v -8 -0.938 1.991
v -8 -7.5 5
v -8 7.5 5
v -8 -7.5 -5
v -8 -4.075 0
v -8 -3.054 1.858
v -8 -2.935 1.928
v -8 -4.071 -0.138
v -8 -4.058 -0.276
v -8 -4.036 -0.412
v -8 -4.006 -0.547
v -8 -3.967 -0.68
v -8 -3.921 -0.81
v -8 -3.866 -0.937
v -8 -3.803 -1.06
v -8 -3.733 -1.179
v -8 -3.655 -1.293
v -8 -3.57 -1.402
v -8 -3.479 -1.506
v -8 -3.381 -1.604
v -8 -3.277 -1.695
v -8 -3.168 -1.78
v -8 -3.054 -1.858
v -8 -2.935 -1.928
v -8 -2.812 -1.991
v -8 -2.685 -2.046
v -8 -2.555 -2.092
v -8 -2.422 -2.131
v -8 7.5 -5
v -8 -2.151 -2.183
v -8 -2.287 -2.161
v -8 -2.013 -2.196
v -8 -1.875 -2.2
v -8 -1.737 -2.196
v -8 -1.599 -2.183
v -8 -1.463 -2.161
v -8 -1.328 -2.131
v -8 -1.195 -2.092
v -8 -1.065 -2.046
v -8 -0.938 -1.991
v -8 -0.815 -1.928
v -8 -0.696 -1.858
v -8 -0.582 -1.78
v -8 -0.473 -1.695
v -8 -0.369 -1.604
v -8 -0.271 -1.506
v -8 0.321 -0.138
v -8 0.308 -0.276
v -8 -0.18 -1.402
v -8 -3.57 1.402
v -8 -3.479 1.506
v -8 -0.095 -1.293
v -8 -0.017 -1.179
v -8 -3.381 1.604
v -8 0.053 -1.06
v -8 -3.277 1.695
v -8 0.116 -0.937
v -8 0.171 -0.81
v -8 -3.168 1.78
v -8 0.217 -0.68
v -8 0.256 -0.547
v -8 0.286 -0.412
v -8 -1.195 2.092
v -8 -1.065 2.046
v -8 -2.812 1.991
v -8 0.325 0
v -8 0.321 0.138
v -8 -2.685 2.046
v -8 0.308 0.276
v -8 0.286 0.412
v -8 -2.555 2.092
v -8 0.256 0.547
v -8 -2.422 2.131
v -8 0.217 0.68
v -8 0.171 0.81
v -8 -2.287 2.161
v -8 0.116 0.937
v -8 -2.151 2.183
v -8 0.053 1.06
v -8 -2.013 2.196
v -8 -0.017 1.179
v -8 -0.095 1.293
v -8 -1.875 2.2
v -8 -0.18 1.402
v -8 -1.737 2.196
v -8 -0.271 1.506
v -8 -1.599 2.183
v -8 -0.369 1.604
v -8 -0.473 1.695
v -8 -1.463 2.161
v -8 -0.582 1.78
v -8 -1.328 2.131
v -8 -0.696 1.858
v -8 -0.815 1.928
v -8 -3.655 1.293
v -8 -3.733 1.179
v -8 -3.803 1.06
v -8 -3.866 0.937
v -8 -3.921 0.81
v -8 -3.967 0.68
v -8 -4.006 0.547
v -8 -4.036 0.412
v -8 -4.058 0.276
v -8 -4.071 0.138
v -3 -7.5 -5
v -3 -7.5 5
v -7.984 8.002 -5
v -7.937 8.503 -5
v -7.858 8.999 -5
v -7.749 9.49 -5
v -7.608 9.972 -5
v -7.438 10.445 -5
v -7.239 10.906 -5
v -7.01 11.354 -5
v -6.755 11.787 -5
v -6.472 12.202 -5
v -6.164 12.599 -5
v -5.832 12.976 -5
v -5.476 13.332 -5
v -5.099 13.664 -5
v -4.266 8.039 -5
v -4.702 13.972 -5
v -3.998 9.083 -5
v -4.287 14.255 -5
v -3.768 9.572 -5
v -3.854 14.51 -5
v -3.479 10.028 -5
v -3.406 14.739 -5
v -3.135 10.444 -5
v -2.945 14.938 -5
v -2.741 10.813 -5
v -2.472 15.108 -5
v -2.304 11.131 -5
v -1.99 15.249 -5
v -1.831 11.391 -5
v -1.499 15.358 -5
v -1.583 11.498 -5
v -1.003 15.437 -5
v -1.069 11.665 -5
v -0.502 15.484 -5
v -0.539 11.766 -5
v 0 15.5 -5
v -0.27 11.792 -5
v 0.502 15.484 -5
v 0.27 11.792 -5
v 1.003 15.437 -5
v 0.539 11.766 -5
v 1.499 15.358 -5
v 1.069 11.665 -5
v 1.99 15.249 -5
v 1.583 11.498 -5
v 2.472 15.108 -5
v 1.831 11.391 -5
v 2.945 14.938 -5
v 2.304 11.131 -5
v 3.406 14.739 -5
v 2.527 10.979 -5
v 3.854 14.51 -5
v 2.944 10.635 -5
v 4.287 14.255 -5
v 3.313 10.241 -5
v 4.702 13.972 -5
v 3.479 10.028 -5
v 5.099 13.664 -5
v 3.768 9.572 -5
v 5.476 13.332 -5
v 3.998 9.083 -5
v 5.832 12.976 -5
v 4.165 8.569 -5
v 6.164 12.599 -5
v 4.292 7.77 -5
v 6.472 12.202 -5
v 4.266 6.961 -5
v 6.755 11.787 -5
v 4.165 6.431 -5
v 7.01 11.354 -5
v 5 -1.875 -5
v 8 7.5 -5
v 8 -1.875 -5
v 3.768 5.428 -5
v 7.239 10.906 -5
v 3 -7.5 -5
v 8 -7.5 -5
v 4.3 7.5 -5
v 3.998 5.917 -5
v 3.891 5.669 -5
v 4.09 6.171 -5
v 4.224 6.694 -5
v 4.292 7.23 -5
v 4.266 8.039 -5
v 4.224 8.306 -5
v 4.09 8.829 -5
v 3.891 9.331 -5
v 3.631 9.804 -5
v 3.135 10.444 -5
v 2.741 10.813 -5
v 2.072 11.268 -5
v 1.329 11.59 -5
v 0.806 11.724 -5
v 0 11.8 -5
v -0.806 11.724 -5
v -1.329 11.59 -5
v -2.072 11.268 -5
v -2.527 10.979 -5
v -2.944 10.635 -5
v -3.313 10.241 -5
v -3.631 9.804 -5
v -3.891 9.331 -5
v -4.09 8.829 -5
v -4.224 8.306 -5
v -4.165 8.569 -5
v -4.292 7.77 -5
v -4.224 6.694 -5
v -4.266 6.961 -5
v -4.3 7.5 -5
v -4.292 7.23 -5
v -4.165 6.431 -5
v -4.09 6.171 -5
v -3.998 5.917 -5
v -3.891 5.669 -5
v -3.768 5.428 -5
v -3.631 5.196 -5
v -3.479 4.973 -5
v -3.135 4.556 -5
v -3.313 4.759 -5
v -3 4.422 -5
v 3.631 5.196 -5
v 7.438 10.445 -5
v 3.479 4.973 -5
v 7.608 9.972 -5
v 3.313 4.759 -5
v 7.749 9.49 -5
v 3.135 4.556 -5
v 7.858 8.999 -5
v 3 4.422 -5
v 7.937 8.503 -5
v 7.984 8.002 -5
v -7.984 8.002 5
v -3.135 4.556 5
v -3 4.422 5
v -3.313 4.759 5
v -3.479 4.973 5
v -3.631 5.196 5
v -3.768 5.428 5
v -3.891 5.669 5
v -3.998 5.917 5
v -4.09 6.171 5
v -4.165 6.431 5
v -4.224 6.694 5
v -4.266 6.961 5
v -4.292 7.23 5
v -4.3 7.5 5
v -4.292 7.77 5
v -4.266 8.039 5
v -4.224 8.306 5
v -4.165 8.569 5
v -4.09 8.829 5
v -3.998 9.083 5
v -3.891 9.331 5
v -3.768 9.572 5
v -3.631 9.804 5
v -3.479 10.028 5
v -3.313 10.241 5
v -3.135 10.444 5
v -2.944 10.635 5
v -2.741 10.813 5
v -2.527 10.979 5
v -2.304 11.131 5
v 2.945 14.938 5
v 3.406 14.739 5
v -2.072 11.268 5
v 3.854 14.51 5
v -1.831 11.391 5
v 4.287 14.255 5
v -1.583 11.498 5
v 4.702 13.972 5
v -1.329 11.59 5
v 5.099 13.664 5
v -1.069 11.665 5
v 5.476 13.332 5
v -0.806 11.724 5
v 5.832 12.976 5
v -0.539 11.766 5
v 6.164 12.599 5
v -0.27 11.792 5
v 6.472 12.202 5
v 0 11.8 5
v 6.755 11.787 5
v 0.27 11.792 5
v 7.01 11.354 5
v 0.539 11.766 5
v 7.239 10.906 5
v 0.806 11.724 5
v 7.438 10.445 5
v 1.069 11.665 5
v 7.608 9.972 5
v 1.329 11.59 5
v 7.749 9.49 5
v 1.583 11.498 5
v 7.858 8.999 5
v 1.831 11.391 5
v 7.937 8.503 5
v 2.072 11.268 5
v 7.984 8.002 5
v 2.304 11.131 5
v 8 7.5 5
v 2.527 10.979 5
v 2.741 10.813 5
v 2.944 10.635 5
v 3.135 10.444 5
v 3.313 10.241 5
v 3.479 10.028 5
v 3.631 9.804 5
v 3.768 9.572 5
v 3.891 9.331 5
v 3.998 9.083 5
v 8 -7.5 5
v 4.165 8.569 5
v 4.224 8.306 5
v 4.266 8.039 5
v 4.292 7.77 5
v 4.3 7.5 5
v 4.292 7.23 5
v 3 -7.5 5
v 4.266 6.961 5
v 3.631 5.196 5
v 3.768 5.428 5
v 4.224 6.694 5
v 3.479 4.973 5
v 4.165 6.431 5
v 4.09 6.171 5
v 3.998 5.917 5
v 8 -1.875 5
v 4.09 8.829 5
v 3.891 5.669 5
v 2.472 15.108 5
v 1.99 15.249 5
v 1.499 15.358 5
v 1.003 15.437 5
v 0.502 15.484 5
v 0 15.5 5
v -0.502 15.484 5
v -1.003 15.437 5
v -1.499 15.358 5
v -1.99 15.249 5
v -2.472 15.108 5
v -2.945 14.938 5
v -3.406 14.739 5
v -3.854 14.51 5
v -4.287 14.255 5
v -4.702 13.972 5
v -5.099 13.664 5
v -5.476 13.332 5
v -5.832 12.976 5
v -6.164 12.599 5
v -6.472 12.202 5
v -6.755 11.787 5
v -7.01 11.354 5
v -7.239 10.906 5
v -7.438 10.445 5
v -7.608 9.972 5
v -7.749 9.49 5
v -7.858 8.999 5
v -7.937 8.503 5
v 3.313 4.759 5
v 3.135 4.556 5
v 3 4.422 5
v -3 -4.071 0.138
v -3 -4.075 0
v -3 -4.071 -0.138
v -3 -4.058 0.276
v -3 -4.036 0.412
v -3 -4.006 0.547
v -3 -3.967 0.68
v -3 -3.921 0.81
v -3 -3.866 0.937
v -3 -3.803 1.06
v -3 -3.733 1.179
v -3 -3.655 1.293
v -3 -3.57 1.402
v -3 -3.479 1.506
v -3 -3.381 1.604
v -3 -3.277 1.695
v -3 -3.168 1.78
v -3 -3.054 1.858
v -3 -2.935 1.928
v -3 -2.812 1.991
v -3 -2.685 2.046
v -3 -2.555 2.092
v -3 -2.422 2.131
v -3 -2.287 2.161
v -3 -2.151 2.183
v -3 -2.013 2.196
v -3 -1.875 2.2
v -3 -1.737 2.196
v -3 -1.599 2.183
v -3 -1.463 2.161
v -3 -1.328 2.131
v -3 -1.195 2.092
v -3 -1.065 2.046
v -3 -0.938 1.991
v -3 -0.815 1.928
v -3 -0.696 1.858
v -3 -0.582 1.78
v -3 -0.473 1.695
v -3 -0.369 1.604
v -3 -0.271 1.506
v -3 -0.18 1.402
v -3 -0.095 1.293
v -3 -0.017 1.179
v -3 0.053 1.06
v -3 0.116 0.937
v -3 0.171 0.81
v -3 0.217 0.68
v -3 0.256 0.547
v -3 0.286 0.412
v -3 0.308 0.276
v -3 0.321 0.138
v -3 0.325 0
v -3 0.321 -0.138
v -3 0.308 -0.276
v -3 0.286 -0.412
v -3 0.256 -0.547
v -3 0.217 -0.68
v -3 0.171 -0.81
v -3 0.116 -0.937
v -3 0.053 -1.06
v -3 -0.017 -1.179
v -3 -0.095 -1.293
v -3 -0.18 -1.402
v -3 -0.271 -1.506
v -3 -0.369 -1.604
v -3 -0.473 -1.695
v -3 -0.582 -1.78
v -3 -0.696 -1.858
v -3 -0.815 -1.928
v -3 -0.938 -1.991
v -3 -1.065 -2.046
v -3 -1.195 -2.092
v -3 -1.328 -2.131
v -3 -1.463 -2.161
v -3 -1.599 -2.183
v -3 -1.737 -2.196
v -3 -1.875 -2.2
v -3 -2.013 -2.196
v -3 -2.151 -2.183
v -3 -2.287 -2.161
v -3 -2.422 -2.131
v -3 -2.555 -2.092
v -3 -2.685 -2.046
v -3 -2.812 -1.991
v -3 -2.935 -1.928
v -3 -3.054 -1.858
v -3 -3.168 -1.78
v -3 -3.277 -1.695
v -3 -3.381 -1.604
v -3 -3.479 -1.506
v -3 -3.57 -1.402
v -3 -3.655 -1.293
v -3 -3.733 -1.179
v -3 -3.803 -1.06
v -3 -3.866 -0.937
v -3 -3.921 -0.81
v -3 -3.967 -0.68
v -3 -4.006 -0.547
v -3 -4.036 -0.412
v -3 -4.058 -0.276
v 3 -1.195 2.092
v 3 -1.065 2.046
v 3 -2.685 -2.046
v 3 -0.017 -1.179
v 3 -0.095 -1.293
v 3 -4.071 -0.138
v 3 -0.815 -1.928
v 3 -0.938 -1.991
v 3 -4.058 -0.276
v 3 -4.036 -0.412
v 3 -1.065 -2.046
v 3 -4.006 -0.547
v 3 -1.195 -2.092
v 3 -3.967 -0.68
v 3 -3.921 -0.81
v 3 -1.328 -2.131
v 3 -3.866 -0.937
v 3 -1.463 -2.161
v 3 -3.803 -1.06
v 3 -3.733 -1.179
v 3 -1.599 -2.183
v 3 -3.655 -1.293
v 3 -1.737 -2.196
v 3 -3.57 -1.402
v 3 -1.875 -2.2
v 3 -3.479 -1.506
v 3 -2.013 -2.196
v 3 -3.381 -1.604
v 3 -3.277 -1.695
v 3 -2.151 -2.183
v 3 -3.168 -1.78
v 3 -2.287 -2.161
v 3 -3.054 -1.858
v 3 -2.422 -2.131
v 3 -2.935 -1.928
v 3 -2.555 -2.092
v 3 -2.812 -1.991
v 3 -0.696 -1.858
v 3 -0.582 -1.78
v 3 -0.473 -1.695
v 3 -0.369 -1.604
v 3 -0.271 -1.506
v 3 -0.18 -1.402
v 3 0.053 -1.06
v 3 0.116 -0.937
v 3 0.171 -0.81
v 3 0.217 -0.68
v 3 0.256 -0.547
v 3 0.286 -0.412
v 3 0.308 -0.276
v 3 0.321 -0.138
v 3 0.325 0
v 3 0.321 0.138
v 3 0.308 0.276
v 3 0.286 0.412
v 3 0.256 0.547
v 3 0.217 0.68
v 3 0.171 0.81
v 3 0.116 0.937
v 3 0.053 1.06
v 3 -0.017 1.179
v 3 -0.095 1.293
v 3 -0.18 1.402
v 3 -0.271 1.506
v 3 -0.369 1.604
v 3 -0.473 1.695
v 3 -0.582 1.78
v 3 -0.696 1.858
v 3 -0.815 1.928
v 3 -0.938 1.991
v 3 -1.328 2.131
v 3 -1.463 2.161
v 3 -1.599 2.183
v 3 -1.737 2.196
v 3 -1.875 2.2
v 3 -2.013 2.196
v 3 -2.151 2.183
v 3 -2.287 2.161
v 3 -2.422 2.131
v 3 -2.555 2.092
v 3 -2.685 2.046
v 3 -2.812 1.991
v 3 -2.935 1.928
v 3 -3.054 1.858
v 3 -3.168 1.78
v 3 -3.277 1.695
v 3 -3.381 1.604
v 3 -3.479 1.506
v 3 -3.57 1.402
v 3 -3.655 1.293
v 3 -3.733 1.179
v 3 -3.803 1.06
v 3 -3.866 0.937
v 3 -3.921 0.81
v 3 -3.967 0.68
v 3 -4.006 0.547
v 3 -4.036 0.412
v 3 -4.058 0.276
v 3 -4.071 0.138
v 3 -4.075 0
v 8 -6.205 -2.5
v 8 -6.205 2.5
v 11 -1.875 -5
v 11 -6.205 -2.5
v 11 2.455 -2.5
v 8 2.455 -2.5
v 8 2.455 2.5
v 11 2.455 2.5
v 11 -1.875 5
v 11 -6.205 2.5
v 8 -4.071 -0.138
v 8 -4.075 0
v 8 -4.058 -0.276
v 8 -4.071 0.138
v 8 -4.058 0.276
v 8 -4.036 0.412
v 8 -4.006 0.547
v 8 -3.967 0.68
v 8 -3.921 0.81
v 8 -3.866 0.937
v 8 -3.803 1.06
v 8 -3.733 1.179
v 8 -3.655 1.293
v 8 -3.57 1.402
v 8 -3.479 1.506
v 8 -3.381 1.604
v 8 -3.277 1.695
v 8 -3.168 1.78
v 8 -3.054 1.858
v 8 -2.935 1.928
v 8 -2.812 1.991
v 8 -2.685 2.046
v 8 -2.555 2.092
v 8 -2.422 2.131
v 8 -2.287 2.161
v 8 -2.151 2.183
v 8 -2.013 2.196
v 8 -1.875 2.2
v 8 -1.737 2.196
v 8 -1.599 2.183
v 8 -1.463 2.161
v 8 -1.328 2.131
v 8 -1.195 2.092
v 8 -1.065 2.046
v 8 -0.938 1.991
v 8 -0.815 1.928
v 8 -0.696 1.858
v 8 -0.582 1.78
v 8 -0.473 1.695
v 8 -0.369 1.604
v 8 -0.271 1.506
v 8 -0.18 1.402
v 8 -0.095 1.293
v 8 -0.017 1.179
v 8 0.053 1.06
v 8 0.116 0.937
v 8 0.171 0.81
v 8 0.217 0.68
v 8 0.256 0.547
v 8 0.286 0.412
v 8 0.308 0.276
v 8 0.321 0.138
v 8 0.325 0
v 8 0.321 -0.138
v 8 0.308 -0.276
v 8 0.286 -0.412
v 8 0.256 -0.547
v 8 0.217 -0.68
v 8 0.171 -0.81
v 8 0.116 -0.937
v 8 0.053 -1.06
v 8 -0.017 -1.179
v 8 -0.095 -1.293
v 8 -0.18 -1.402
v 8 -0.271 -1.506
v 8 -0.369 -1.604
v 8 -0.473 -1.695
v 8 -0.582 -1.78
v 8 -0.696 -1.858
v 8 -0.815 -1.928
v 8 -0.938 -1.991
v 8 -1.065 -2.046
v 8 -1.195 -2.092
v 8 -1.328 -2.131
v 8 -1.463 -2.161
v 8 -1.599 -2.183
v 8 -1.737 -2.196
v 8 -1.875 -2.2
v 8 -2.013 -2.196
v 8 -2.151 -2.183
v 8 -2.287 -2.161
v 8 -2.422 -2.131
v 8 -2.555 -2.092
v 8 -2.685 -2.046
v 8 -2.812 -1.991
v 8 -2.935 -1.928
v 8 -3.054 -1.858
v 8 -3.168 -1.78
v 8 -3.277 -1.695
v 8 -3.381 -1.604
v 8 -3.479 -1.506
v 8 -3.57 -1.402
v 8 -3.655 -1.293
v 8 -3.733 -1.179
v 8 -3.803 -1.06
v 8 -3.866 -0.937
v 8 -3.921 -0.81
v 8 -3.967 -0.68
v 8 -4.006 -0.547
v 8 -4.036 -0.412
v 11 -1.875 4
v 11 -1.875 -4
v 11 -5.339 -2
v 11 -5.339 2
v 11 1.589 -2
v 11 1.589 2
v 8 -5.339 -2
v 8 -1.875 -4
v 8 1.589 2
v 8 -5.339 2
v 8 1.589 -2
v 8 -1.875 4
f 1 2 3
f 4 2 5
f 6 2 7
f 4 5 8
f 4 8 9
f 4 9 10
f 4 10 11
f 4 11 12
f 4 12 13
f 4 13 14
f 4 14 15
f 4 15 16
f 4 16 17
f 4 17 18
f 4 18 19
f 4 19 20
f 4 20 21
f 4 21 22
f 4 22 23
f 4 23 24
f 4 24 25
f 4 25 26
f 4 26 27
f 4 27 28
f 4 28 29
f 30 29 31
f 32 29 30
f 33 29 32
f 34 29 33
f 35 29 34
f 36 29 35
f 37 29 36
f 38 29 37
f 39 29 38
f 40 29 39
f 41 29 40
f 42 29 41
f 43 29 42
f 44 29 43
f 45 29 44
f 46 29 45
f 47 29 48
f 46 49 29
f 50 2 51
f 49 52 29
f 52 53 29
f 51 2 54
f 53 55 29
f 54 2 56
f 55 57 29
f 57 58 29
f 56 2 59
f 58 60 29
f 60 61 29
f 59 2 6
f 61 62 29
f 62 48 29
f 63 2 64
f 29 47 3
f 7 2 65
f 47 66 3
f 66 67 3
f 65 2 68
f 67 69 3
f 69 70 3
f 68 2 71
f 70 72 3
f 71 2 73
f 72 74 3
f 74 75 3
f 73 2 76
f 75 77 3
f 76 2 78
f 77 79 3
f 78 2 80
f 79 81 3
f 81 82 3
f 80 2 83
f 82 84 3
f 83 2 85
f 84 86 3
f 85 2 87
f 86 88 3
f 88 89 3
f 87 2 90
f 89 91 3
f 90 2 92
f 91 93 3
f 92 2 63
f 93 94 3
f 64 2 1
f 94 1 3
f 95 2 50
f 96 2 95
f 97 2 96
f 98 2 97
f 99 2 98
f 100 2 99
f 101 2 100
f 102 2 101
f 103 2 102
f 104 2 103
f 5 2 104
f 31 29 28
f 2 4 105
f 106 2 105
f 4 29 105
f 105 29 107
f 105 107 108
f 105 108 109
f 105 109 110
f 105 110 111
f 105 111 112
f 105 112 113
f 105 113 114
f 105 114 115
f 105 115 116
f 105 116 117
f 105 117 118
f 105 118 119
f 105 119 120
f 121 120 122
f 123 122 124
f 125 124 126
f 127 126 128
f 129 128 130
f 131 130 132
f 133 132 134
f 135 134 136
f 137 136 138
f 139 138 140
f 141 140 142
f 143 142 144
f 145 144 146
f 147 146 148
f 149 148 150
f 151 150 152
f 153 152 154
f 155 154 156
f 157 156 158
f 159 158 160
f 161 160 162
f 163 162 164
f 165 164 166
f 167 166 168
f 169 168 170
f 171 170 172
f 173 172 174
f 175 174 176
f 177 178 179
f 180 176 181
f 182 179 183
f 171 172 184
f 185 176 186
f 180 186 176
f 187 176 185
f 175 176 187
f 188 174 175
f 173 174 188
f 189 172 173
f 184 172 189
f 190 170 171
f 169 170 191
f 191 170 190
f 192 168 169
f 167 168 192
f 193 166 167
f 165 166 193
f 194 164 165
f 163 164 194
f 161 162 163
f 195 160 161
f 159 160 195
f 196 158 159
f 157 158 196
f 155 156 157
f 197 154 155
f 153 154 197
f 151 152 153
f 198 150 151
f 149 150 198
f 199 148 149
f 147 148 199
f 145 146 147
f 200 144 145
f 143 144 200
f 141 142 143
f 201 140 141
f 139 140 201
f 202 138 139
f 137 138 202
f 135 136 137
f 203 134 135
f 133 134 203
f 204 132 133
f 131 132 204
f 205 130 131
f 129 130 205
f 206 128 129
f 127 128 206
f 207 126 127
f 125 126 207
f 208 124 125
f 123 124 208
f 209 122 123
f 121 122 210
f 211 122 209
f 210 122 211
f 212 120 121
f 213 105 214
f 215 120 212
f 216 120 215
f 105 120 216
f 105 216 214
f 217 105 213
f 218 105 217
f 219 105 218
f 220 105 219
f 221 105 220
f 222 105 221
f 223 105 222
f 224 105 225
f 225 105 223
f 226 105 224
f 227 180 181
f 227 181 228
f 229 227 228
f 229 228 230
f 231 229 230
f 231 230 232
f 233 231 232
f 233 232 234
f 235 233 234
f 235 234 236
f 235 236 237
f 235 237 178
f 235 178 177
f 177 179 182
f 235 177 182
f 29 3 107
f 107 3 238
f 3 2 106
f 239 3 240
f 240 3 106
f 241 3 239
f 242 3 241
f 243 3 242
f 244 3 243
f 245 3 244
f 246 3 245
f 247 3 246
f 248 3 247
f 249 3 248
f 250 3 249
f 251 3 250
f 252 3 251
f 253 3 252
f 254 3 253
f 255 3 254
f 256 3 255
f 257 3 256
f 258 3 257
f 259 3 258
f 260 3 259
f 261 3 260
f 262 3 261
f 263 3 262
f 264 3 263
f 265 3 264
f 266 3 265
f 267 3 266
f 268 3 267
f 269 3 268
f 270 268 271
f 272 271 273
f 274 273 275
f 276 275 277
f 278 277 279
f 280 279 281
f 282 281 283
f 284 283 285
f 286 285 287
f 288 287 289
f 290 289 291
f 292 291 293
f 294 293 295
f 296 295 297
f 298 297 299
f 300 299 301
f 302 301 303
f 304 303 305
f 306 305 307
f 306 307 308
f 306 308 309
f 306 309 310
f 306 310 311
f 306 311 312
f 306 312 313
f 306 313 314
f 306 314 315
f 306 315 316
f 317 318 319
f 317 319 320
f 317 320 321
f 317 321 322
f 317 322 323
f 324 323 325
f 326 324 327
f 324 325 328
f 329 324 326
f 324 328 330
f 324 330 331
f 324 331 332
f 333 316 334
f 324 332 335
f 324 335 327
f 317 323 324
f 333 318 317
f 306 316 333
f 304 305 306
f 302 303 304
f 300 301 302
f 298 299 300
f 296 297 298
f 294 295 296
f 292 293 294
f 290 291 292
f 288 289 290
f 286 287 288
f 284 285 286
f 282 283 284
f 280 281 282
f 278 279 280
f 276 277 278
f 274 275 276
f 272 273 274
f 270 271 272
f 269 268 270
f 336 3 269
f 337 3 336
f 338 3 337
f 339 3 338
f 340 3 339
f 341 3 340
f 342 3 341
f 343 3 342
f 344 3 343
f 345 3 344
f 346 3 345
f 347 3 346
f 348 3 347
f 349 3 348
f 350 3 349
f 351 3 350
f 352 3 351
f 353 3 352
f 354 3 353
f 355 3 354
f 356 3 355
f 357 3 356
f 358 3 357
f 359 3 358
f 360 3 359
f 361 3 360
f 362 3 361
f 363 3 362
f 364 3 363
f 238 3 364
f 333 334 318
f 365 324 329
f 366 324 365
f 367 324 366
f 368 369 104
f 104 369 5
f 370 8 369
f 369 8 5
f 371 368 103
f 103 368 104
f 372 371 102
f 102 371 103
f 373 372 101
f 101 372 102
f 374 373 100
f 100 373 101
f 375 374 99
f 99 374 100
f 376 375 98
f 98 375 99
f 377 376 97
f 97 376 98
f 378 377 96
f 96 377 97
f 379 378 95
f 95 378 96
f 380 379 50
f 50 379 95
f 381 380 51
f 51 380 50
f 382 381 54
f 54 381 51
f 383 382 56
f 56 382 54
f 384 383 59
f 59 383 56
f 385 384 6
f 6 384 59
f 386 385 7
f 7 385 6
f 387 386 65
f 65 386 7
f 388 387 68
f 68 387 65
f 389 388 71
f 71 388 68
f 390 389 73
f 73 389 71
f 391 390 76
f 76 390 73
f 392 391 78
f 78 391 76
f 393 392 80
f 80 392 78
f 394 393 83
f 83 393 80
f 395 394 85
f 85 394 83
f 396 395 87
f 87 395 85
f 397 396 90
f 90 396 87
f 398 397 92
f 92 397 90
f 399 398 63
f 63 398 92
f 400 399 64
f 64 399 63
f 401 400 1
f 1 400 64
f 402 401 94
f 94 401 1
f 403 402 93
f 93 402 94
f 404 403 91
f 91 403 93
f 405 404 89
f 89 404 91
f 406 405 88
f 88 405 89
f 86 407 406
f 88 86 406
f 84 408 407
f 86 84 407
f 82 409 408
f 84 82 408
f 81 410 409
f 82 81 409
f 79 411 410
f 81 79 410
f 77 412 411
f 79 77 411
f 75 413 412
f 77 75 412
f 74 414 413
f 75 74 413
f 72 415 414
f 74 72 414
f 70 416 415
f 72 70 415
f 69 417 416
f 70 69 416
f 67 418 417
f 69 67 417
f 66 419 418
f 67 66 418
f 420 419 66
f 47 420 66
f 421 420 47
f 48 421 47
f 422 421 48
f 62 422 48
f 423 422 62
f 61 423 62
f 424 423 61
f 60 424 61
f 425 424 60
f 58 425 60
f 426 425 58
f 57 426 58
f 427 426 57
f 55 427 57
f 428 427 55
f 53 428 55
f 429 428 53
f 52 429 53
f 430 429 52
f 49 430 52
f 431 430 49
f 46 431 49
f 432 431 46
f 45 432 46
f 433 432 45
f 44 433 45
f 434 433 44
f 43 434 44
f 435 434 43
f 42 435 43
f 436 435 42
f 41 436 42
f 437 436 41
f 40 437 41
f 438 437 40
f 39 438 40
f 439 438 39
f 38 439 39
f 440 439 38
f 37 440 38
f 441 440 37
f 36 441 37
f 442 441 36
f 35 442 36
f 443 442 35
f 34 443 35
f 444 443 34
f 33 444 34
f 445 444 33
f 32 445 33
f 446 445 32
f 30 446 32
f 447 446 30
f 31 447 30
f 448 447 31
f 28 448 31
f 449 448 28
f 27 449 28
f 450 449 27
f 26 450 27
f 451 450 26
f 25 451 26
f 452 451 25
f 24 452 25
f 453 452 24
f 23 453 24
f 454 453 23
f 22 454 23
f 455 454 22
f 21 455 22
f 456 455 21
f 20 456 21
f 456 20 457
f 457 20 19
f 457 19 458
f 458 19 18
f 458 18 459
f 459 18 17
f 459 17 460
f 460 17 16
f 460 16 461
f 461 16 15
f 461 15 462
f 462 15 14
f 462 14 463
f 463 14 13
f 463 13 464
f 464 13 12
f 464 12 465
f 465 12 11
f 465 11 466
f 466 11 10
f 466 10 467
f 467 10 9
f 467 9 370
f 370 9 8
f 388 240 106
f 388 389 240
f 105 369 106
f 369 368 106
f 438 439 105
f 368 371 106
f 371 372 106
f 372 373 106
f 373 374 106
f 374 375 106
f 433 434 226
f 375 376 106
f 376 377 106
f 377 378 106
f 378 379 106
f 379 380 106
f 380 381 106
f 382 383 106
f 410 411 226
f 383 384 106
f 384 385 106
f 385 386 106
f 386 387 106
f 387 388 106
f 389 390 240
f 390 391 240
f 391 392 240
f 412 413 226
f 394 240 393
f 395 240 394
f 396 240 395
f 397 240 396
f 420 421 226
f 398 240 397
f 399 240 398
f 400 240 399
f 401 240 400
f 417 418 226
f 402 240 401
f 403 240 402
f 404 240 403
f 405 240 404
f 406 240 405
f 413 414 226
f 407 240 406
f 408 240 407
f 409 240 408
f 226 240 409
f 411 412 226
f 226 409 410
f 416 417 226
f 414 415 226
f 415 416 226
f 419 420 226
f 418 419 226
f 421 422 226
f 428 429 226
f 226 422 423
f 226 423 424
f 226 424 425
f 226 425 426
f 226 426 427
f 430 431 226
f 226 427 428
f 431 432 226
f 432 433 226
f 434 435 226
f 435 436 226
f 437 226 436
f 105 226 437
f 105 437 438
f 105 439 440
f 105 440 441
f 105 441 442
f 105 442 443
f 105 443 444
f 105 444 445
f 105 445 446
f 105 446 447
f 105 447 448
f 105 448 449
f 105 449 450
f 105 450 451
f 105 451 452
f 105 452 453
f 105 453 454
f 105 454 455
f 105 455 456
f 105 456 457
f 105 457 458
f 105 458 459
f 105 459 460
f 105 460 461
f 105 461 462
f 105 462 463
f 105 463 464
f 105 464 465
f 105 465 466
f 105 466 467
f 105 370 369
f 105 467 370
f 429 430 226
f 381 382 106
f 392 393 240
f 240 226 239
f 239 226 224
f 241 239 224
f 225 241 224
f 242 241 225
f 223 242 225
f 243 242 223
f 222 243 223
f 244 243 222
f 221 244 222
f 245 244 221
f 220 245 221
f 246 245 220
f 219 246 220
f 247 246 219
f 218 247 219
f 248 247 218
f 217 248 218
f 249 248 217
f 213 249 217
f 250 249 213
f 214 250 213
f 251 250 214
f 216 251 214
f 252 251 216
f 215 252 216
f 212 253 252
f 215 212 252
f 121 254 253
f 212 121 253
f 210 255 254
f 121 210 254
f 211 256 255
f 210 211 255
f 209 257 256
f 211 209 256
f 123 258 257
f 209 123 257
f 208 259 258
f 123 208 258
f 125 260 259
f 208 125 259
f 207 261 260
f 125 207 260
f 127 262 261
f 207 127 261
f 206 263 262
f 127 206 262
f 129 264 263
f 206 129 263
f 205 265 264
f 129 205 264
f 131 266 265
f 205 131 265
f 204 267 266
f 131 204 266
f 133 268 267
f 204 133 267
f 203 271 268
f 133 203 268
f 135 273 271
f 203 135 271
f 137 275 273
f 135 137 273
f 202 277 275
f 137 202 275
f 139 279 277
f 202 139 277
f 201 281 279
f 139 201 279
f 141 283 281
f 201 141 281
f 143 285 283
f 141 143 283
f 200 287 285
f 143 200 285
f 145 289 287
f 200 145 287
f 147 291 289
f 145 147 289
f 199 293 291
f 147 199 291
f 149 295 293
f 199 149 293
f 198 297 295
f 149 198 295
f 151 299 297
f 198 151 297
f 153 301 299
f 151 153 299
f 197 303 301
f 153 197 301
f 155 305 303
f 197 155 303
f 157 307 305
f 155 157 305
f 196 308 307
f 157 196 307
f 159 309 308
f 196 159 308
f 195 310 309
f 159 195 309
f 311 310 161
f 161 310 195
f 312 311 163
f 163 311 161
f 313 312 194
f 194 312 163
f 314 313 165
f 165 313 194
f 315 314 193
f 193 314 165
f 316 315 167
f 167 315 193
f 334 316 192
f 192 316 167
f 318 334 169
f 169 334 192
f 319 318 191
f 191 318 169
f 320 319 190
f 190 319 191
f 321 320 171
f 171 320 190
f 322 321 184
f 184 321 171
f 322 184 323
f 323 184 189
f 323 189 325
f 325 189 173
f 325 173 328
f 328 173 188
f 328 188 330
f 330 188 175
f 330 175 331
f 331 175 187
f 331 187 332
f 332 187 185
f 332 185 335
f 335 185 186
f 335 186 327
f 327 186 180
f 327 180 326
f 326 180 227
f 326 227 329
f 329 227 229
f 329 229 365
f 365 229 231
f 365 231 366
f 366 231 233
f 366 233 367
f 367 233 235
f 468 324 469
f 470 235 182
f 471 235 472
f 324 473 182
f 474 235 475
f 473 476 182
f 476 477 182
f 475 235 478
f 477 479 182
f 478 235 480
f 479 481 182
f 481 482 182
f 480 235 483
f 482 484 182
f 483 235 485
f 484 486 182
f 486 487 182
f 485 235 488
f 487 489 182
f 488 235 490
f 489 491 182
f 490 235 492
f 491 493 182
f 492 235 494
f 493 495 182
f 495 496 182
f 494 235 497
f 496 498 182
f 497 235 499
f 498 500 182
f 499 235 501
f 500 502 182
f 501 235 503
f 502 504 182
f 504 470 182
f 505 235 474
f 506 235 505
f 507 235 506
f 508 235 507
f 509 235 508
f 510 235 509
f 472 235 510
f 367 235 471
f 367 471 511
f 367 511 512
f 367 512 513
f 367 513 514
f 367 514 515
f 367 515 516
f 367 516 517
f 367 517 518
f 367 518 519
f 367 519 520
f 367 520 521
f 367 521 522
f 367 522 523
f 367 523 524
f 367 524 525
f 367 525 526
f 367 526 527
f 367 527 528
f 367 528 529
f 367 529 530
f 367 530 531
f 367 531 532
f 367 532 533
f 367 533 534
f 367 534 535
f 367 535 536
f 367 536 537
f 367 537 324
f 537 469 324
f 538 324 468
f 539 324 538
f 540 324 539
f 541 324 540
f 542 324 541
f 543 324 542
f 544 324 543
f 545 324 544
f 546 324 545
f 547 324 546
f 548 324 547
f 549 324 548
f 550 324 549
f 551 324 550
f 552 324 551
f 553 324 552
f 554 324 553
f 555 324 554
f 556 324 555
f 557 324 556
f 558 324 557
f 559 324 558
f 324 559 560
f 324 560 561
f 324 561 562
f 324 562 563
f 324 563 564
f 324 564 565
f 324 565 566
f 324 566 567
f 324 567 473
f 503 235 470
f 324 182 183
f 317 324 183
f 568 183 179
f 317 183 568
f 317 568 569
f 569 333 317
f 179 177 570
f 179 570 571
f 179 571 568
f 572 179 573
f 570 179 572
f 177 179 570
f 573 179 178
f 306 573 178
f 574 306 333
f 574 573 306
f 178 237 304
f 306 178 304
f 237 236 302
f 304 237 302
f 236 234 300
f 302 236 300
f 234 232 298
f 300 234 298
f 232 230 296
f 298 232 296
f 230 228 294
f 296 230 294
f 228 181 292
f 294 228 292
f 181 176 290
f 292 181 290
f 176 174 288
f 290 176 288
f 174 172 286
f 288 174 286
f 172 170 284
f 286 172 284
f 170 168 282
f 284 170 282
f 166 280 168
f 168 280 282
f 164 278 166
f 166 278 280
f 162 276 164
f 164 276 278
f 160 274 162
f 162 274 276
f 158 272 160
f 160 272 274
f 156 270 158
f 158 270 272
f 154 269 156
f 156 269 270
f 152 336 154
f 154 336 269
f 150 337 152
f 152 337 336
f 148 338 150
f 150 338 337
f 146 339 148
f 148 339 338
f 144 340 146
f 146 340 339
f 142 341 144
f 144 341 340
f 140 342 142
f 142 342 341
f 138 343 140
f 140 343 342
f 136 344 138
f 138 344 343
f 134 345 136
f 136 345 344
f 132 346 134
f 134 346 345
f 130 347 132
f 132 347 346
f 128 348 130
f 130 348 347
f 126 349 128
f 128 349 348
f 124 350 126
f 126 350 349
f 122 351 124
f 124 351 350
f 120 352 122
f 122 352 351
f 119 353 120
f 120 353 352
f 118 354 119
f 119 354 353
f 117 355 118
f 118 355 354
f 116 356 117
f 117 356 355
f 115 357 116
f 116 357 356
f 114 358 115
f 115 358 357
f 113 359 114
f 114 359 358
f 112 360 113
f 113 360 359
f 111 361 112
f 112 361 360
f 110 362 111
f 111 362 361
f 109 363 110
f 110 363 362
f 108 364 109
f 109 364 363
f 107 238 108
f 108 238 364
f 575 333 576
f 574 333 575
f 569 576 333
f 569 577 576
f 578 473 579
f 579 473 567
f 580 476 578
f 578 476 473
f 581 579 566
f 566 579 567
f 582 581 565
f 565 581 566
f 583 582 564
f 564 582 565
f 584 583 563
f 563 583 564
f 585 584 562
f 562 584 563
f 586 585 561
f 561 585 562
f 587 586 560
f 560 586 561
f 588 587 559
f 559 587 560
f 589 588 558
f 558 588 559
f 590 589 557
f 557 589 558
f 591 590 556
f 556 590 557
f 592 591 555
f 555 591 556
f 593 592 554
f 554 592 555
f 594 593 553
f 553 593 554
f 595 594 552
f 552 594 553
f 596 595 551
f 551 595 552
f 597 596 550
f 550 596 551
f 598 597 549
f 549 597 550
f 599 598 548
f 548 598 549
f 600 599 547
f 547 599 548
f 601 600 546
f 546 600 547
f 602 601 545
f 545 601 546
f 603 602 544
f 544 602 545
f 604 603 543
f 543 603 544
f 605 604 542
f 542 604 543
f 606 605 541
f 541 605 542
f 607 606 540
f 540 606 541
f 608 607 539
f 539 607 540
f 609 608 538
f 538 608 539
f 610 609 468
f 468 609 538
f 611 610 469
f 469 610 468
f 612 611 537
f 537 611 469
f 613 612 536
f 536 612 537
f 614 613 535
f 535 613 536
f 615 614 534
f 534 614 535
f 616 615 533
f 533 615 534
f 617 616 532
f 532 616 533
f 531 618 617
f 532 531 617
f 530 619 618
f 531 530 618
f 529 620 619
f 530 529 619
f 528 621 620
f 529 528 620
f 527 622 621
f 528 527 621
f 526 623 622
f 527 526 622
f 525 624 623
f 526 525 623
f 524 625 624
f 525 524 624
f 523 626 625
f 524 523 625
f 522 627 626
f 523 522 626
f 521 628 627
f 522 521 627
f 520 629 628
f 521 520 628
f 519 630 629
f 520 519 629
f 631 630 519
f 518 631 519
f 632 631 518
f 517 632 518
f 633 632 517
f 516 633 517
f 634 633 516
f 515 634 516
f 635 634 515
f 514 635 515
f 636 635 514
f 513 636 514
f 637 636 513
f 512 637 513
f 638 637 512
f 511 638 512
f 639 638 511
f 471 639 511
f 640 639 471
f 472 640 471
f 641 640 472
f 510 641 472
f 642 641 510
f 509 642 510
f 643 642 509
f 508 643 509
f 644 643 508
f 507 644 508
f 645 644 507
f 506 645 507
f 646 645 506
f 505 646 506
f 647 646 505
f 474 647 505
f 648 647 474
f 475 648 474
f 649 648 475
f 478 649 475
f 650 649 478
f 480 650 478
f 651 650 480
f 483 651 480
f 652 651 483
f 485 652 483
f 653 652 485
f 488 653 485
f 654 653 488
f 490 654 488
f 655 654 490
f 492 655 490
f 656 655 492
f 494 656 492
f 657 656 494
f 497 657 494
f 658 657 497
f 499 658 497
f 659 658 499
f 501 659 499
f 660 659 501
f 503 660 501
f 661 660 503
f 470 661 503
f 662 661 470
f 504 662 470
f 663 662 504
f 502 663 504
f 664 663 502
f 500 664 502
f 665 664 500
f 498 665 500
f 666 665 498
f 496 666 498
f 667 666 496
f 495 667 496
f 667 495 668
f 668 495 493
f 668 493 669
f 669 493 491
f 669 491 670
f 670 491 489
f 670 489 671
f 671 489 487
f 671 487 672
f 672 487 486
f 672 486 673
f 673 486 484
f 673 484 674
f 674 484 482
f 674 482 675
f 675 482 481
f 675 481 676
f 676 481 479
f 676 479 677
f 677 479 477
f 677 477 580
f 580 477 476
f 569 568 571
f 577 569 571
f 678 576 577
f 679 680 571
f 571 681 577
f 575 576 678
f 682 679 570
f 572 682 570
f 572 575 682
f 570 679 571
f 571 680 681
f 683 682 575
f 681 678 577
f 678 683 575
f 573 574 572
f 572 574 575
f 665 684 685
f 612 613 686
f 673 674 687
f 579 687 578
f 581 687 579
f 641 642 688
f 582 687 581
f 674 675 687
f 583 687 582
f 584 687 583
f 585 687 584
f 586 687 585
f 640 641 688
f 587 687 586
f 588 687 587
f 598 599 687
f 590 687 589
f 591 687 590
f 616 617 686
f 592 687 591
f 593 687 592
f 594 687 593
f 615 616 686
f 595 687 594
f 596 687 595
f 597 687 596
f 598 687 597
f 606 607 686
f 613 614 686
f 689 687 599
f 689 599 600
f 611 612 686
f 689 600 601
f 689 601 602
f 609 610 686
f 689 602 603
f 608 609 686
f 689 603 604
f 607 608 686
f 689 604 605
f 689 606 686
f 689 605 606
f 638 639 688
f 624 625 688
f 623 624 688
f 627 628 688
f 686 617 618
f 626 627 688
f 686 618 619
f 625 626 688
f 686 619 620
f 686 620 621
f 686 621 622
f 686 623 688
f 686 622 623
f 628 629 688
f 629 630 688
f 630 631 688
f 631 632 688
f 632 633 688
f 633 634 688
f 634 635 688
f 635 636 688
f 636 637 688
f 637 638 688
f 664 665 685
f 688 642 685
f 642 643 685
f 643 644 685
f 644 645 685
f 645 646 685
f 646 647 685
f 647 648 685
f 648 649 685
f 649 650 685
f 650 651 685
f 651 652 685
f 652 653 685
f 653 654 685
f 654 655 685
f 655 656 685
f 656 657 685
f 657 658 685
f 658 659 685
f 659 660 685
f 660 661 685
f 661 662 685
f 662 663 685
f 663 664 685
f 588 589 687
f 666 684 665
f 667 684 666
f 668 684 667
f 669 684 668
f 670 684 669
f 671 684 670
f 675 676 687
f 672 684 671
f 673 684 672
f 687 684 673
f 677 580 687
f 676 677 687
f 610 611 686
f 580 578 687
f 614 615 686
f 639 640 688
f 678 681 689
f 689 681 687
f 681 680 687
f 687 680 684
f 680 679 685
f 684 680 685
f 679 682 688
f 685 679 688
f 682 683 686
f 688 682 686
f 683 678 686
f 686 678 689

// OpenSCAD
// file: lib.scad
module bearing_holder(l, h, r1, r2, holder_depth, holder_thick=2) {
	union(){
		difference(){
			union(){
				translate([-r1,0,-l/2]) cube([r1*2,h,l]);
				cylinder (h = l, r=r1, center = true, $fn=100);
			}
			translate([0,-r1/2,0]) cube([r1*2+1, r1, l+1], center=true);
			translate([0,r1,0]) cube([r1*2+1, 3, 6], center=true);
			cylinder (h = l+1, r=r2, center = true, $fn=100);
		}
		translate([0,(h+r2-holder_thick)/2,l/2+holder_thick/2]) cube([r1*2,h-r2+holder_thick,holder_thick], center=true);
		translate([0,(h+r2-holder_thick)/2,-(l/2+holder_thick/2)]) cube([r1*2,h-r2+holder_thick,holder_thick], center=true);
	}
}

module single_bearing_frame(r1, r2, h, l, d, holder_depth, holder_thick=2, bar_offset=false){
	difference(){
		union(){
			translate([0,0,h/2]) rotate([-90,0,0]) bearing_holder(l, h, r1, r2, holder_depth);
			translate([0,l/2+(d+l)/4,-r2/2+holder_depth/2]) cube([r1*2,(d+l)/2,h-r2+holder_depth], center=true);
			translate([0,-(l/2+(d+l)/4),-r2/2+holder_depth/2]) cube([r1*2,(d+l)/2,h-r2+holder_depth], center=true);
		}
		if (bar_offset != false){
			translate([0,-(d+l)/2,-h/2+bar_offset]) rotate([0,90,0]) cylinder(r=4.5, h=r1*2.5,center=true,$fn=100);
			translate([0,(d+l)/2,-h/2+bar_offset]) rotate([0,90,0]) cylinder(r=4.5, h=r1*2.5,center=true,$fn=100);		
		}
		translate([0,-(l/2+(d+l)/4+holder_thick/2+1),h/4]) cube([r1*2+1,(d+l)/2-holder_thick+2,h/2], center=true);
		translate([0,(l/2+(d+l)/4+holder_thick/2+1),h/4]) cube([r1*2+1,(d+l)/2-holder_thick+2,h/2], center=true);
	}
}

module double_bearing_frame(r1, r2, h, l, d, holder_depth, holder_thick=2, bar_offset=false){
	difference(){
		union(){
			translate([0,-((d+l)/2-holder_thick),h/2]) rotate([-90,0,0]) bearing_holder(l, h, r1, r2, holder_depth);
			translate([0,(d+l)/2-holder_thick,h/2]) rotate([-90,0,0]) bearing_holder(l, h, r1, r2, holder_depth);

			translate([0,0,-r2/2+holder_depth/2]) cube([r1*2,d-holder_thick*2,h-r2+holder_depth], center=true);

			translate([0,d/2+l-holder_thick/2,-r2/2+holder_depth/2]) cube([r1*2,holder_thick,h-r2+holder_depth], center=true);
			translate([0,-d/2-l+holder_thick/2,-r2/2+holder_depth/2]) cube([r1*2,holder_thick,h-r2+holder_depth], center=true);
		}
		if (bar_offset != false){
			translate([0,-(d+l)/2,-h/2+bar_offset]) rotate([0,90,0]) cylinder(r=4.5, h=r1*2.5,center=true,$fn=100);
			translate([0,(d+l)/2,-h/2+bar_offset]) rotate([0,90,0]) cylinder(r=4.5, h=r1*2.5,center=true,$fn=100);	
		}
		translate([0,0,h/4]) cube([r1*2+1,d-4*holder_thick,h/2], center=true);
	}
}

module motor_holder(){
	rotate([90,0,0]) difference(){
		translate([0,-1.9,0]) cube([50,46.2,10],center=true);
		translate([0,1,3]) cube([42.4,44.4,7],center=true);
		for(pos = [[-15.5,15.5,0],[15.5,15.5,0],[15.5,-15.5,0],[-15.5,-15.5,0]]){
			translate(pos) cylinder(r=1.7,h=11,center=true,$fn=100);
		}
		
		translate([0,21,-3]) cube([23.4,42.4,7],center=true);
		cylinder(r=11.5,h=20,center=true,$fn=100);
	}
}

module feame_connector(){
	translate([0,0,12.5]) difference(){
		cube([48,48,40], center=true);
		translate([0,0,6]) cube([41.1,41.1,40], center=true);
	}
	translate([0,0,5]) difference(){
		union(){
			translate([0,34,0]) cube([30,20,25], center=true);
		}
		translate([0,33,0]) rotate([0,90,0]) cylinder(r=4.5,h=31,center=true,$fn=100);
	}
}

module nut_holder(r1=5, r2=4, h=6){
	difference(){
		rotate([0,90,0]) cylinder(h=h,r=5,$fn=6,center=true);
		rotate([0,90,0]) cylinder(h=h+1,r=4,$fn=6,center=true);
	}
}

/*
r1 = 10;
r2 = 7.5;
h = 40;
l = 24;
d = 50;
holder_depth = 2.5;
//bearing_holder(l, h, r1, r2, holder_depth);
//single_bearing_frame(r1, r2, h, l, d, holder_depth, bar_offset=10);
//double_bearing_frame(r1, r2, h, l, d, holder_depth, bar_offset=10);
//motor_holder();
feame_connector();
/*
*/
// main file
include <lib.scad>;

l=10;
h=23;
r1=8;
r2=4.3;
r3=2.2;
d=6;

difference(){
	union(){
		cube([r1*2,(h-r1),l], center=true);
		translate([0,(h-r1)/2,0]) cylinder(r=r1,h=l,$fn=100,center=true);
		translate([r1-d+6,-(h-r1)/8,0]) nut_holder();
	}
	translate([0,(h-r1)/2,0]) cylinder(r=r2,h=l+1,$fn=100,center=true);
	cube([d,(h-r1)+1,l+1], center=true);
	translate([0,-(h-r1)/8,0]) rotate([0,90,0]) cylinder(r=r3,h=r1*2+1,$fn=100,center=true);
}
